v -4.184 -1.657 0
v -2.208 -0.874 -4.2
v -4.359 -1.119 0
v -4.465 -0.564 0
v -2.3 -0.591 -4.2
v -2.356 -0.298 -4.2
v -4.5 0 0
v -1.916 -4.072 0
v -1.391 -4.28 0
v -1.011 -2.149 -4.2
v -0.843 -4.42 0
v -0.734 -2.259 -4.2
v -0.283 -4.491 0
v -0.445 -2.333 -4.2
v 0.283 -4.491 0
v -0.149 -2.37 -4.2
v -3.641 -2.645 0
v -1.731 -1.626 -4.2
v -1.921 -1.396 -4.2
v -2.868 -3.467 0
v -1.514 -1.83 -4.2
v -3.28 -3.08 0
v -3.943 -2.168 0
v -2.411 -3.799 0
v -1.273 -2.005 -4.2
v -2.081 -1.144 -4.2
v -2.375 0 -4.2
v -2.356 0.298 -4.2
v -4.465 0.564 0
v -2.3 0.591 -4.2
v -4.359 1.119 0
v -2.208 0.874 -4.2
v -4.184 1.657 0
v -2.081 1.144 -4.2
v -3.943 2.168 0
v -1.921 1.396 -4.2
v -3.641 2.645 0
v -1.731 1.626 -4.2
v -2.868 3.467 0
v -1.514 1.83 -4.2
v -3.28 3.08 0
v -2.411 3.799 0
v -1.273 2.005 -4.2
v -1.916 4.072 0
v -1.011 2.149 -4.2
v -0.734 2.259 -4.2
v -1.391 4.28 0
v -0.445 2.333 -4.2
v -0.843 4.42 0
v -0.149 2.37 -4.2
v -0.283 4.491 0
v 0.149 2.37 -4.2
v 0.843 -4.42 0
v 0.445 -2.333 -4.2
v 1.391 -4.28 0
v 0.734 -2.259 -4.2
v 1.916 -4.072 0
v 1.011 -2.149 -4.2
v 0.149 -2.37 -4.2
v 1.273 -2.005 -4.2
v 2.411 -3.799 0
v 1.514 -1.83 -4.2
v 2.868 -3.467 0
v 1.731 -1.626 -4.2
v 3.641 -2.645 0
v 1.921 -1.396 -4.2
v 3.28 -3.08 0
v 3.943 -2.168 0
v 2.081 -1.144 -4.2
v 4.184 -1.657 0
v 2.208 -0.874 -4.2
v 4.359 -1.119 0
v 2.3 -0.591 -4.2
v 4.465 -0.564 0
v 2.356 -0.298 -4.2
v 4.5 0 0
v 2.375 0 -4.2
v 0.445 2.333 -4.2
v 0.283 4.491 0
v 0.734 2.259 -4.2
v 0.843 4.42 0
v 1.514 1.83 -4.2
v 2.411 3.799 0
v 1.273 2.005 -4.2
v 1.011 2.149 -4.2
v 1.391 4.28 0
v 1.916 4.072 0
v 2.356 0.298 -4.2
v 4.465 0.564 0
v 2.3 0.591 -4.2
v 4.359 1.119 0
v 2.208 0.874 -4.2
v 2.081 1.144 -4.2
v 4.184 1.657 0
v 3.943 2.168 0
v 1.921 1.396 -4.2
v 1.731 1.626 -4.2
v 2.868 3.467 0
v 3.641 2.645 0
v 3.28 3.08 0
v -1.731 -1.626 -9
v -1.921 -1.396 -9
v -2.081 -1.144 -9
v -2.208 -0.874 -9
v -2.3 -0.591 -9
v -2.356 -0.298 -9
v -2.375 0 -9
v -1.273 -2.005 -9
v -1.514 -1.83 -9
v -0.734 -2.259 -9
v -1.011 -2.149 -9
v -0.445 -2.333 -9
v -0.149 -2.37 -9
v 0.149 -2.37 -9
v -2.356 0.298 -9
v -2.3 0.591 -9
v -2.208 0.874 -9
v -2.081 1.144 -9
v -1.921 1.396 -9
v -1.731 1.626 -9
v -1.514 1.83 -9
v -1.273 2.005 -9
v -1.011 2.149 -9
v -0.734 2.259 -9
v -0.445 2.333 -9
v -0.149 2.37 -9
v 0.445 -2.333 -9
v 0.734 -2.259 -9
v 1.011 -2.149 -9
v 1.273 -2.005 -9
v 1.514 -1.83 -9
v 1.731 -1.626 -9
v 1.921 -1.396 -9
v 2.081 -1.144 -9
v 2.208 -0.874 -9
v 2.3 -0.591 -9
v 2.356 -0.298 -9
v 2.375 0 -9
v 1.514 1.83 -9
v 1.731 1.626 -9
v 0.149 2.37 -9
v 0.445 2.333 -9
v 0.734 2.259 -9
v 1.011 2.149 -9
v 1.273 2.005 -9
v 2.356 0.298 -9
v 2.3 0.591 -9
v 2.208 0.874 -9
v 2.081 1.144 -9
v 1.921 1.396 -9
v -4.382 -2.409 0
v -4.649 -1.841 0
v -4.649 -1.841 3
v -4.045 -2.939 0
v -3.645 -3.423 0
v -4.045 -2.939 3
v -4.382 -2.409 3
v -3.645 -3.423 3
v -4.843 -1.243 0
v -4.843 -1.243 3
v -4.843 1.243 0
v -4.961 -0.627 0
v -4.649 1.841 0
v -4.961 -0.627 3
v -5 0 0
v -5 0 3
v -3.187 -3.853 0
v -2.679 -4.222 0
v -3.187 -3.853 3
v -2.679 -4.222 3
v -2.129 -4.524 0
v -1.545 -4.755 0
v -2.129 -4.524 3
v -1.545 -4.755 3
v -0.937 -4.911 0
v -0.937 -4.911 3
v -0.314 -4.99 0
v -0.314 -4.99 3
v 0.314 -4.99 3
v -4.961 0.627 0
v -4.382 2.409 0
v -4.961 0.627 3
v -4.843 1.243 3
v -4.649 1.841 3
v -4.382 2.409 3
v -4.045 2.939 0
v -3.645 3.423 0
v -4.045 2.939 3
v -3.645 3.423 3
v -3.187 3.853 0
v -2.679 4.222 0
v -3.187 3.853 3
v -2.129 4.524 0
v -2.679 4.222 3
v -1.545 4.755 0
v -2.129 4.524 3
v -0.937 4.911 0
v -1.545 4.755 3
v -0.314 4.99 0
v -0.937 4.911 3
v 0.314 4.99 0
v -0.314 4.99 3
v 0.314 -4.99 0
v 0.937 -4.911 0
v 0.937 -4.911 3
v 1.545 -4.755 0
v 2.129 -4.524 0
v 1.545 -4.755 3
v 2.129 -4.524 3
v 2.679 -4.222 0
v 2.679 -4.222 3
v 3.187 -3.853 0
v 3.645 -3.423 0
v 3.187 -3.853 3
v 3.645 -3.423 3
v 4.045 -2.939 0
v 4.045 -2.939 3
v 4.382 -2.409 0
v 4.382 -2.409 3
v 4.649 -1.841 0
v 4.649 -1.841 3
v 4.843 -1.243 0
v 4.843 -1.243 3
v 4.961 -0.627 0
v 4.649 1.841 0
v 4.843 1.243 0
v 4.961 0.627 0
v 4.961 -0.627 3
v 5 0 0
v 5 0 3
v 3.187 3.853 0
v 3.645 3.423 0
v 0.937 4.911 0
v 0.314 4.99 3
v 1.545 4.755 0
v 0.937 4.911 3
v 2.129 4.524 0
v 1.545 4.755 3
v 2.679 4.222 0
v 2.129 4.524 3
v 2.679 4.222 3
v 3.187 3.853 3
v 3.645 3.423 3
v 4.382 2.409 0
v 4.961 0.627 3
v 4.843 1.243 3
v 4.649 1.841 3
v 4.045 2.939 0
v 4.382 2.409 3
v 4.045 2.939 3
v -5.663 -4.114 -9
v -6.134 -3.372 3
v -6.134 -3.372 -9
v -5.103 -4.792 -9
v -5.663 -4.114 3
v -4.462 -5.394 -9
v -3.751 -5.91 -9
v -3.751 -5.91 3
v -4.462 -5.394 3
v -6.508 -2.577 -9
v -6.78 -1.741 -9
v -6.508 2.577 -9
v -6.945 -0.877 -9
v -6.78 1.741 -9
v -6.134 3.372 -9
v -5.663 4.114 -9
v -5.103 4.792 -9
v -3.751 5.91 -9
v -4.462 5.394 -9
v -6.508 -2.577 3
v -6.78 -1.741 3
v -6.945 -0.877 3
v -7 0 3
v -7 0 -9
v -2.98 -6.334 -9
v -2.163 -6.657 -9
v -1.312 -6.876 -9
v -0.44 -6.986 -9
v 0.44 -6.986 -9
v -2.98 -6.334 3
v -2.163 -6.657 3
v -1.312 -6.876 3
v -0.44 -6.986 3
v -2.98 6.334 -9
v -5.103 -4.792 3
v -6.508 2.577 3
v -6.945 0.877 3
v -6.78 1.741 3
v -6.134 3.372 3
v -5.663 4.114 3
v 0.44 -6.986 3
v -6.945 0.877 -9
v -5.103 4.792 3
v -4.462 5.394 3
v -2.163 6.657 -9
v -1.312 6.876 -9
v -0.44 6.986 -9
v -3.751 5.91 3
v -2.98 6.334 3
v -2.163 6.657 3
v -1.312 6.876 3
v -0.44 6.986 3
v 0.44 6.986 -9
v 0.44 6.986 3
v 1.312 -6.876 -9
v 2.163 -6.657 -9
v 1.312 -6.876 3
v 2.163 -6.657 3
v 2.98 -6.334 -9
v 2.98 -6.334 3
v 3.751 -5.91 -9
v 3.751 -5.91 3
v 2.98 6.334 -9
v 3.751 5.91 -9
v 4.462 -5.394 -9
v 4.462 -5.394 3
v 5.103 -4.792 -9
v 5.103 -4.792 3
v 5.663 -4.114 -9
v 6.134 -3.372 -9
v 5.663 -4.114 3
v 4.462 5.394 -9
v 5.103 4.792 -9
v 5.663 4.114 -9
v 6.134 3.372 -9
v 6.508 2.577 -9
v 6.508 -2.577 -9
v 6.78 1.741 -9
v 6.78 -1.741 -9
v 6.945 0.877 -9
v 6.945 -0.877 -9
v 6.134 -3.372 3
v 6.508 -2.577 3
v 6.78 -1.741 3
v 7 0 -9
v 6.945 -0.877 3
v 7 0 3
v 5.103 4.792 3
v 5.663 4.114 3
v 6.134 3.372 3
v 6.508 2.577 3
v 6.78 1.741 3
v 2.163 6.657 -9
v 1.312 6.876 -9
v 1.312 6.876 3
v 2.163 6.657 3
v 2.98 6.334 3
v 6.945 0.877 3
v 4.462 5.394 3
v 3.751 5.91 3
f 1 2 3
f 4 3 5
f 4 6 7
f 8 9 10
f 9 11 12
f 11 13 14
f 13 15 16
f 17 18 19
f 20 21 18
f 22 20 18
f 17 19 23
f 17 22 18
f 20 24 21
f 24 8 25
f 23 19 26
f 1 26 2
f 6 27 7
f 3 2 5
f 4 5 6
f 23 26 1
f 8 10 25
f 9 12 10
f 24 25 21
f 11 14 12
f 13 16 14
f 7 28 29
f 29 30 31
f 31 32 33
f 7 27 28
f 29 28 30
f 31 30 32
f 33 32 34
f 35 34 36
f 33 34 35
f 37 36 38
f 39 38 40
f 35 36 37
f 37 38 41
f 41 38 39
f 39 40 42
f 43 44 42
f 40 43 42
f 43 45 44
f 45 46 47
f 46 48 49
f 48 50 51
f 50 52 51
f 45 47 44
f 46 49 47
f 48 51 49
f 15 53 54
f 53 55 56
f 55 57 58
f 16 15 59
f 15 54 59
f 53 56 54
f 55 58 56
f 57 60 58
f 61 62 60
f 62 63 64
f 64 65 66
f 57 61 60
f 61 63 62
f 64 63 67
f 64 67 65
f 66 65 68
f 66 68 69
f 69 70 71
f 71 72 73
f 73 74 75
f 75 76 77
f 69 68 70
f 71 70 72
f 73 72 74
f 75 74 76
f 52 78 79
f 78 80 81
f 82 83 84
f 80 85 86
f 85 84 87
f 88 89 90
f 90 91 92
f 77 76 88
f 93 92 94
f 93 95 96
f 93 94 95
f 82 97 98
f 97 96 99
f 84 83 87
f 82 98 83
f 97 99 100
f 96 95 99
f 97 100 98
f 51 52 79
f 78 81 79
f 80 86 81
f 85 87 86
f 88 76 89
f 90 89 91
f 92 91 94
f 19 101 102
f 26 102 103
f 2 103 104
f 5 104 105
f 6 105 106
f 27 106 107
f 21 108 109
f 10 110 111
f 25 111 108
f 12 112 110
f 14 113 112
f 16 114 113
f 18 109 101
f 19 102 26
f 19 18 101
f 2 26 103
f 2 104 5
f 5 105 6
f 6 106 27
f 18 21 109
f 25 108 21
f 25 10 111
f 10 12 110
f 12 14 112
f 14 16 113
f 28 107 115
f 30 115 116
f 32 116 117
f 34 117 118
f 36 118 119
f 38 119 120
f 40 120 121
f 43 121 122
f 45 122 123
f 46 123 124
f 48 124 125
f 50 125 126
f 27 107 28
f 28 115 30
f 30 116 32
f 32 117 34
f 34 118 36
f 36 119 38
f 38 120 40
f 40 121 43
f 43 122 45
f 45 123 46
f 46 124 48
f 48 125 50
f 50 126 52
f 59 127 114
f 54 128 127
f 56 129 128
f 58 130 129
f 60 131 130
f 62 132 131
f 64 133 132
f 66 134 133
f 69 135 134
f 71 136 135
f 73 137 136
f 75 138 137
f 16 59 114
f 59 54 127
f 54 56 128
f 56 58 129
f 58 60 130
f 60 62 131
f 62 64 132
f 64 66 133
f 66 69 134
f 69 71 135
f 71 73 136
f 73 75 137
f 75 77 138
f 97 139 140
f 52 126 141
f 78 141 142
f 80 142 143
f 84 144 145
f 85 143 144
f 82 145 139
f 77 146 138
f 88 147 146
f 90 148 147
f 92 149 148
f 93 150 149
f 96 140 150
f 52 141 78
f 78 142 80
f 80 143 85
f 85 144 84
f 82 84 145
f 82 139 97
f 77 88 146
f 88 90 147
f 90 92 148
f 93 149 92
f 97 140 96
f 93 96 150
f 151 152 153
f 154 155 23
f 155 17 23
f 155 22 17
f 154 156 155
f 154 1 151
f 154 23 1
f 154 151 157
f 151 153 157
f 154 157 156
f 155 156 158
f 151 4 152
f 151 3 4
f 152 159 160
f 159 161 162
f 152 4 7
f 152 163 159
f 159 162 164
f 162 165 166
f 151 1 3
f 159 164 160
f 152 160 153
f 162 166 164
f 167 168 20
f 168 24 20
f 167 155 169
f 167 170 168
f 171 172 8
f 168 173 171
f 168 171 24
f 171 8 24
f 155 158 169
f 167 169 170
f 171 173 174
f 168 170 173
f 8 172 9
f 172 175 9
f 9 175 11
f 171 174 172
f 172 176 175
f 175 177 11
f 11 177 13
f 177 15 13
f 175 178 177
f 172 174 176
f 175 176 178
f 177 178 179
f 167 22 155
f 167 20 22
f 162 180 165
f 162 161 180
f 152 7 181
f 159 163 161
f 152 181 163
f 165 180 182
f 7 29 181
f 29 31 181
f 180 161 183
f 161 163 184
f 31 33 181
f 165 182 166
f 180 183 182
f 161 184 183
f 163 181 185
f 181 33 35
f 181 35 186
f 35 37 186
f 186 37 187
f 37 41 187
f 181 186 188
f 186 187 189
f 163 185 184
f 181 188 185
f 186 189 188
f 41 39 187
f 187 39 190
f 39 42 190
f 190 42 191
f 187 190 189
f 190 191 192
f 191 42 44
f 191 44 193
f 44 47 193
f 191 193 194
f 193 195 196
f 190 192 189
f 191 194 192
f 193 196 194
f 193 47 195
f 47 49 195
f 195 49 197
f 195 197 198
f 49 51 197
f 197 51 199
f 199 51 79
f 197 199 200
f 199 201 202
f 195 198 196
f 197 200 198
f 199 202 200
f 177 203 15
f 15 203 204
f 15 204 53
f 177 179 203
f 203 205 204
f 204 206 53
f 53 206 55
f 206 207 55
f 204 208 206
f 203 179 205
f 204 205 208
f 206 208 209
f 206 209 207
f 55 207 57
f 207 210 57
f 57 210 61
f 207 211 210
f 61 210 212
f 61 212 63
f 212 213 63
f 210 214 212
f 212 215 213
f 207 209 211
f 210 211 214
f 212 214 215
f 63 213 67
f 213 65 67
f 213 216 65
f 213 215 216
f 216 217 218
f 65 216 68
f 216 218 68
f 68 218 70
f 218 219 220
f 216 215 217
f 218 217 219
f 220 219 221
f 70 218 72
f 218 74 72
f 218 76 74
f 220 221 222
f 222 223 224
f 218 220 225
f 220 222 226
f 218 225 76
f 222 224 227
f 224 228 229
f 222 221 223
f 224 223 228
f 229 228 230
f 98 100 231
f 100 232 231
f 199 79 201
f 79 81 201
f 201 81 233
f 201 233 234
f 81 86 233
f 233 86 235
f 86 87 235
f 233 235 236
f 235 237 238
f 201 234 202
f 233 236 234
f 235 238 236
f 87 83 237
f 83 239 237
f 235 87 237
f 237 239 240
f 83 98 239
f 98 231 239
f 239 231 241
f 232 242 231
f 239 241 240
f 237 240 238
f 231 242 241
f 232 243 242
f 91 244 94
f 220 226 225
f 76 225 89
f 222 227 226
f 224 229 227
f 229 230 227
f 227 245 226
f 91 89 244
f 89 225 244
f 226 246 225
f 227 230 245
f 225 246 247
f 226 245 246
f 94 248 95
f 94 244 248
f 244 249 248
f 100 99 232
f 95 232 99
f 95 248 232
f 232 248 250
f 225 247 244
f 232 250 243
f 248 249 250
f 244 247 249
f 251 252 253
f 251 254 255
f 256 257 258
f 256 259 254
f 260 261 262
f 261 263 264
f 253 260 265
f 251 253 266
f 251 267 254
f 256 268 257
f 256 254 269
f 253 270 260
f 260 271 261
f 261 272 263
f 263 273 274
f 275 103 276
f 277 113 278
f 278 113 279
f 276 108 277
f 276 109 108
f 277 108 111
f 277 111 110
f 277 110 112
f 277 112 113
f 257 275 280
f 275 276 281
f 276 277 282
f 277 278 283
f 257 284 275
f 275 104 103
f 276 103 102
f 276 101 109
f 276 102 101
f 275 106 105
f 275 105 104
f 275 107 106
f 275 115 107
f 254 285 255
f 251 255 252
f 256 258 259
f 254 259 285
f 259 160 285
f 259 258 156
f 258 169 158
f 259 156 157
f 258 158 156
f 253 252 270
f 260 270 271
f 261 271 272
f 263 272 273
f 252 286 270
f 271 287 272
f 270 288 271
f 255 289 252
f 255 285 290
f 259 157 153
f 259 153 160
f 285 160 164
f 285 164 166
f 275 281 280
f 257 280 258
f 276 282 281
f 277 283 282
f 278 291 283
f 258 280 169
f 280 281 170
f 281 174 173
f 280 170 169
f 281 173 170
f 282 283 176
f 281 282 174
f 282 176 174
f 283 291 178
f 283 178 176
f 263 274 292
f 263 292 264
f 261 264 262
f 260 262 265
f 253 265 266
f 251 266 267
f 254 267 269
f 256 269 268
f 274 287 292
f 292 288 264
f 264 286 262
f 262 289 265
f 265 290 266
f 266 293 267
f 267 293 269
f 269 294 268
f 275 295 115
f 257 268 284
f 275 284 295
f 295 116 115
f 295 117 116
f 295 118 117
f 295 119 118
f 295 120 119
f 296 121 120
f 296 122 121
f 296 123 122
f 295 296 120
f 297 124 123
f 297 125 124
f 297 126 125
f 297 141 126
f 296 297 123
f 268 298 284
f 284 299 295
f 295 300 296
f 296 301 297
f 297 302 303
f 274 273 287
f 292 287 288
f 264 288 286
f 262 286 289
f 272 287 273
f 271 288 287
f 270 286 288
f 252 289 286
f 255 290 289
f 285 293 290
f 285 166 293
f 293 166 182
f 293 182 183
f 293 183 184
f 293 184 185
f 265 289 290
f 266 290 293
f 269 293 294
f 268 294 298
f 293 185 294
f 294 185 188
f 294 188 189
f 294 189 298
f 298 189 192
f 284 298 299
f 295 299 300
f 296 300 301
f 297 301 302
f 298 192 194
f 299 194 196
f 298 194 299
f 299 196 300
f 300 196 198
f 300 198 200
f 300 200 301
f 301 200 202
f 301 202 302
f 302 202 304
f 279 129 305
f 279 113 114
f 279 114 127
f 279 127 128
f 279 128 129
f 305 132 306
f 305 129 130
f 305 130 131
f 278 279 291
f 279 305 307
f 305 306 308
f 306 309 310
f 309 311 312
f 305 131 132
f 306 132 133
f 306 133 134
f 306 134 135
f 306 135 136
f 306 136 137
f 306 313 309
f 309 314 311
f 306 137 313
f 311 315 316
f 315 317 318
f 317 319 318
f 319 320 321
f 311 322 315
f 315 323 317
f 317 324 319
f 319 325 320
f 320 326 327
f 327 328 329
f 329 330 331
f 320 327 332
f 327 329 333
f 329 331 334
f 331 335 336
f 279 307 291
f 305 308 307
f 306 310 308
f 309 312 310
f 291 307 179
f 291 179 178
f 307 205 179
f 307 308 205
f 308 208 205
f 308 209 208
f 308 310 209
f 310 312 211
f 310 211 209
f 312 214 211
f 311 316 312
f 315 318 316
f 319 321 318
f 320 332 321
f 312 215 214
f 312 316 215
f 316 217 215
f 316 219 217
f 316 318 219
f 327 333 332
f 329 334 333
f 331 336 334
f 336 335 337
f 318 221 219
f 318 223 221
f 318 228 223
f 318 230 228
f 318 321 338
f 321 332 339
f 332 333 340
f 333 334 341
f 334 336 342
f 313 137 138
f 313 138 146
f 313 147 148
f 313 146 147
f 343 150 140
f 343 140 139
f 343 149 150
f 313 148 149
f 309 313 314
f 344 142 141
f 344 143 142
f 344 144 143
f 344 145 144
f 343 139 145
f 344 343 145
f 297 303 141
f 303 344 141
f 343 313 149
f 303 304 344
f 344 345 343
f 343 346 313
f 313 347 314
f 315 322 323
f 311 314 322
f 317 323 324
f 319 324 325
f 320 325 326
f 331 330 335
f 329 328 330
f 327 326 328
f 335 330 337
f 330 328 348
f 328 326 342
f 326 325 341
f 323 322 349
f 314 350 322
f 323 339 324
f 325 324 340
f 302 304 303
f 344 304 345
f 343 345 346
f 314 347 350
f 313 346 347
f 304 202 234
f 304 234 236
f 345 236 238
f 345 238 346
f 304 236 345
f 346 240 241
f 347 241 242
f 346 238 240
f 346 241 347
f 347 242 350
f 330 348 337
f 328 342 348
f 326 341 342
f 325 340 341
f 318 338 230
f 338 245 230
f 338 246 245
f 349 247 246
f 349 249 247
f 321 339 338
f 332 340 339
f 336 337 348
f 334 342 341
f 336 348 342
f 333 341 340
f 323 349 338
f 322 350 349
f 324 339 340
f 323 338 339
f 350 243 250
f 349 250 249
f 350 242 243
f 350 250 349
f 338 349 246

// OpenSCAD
$fn = 50;

difference() {
	union() {
		translate(v = [0, 0, -9.0]) {
			cylinder(h = 12, r = 7.0);
		}
	}
	union() {
		translate(v = [0, 0, 0]) {
			rotate(a = [0, 0, 0]) {
				difference() {
					union() {
						translate(v = [0, 0, -12.0]) {
							cylinder(h = 12, r = 2.25);
						}
						translate(v = [0, 0, -4.2]) {
							cylinder(h = 4.2, r1 = 2.375, r2 = 4.5);
						}
						translate(v = [0, 0, -12.0]) {
							cylinder(h = 12, r = 2.375);
						}
						translate(v = [0, 0, -12.0]) {
							cylinder(h = 12, r = 2.25);
						}
					}
					union();
				}
			}
		}
		#cylinder(h = 3, r = 5.0);
	}
}
